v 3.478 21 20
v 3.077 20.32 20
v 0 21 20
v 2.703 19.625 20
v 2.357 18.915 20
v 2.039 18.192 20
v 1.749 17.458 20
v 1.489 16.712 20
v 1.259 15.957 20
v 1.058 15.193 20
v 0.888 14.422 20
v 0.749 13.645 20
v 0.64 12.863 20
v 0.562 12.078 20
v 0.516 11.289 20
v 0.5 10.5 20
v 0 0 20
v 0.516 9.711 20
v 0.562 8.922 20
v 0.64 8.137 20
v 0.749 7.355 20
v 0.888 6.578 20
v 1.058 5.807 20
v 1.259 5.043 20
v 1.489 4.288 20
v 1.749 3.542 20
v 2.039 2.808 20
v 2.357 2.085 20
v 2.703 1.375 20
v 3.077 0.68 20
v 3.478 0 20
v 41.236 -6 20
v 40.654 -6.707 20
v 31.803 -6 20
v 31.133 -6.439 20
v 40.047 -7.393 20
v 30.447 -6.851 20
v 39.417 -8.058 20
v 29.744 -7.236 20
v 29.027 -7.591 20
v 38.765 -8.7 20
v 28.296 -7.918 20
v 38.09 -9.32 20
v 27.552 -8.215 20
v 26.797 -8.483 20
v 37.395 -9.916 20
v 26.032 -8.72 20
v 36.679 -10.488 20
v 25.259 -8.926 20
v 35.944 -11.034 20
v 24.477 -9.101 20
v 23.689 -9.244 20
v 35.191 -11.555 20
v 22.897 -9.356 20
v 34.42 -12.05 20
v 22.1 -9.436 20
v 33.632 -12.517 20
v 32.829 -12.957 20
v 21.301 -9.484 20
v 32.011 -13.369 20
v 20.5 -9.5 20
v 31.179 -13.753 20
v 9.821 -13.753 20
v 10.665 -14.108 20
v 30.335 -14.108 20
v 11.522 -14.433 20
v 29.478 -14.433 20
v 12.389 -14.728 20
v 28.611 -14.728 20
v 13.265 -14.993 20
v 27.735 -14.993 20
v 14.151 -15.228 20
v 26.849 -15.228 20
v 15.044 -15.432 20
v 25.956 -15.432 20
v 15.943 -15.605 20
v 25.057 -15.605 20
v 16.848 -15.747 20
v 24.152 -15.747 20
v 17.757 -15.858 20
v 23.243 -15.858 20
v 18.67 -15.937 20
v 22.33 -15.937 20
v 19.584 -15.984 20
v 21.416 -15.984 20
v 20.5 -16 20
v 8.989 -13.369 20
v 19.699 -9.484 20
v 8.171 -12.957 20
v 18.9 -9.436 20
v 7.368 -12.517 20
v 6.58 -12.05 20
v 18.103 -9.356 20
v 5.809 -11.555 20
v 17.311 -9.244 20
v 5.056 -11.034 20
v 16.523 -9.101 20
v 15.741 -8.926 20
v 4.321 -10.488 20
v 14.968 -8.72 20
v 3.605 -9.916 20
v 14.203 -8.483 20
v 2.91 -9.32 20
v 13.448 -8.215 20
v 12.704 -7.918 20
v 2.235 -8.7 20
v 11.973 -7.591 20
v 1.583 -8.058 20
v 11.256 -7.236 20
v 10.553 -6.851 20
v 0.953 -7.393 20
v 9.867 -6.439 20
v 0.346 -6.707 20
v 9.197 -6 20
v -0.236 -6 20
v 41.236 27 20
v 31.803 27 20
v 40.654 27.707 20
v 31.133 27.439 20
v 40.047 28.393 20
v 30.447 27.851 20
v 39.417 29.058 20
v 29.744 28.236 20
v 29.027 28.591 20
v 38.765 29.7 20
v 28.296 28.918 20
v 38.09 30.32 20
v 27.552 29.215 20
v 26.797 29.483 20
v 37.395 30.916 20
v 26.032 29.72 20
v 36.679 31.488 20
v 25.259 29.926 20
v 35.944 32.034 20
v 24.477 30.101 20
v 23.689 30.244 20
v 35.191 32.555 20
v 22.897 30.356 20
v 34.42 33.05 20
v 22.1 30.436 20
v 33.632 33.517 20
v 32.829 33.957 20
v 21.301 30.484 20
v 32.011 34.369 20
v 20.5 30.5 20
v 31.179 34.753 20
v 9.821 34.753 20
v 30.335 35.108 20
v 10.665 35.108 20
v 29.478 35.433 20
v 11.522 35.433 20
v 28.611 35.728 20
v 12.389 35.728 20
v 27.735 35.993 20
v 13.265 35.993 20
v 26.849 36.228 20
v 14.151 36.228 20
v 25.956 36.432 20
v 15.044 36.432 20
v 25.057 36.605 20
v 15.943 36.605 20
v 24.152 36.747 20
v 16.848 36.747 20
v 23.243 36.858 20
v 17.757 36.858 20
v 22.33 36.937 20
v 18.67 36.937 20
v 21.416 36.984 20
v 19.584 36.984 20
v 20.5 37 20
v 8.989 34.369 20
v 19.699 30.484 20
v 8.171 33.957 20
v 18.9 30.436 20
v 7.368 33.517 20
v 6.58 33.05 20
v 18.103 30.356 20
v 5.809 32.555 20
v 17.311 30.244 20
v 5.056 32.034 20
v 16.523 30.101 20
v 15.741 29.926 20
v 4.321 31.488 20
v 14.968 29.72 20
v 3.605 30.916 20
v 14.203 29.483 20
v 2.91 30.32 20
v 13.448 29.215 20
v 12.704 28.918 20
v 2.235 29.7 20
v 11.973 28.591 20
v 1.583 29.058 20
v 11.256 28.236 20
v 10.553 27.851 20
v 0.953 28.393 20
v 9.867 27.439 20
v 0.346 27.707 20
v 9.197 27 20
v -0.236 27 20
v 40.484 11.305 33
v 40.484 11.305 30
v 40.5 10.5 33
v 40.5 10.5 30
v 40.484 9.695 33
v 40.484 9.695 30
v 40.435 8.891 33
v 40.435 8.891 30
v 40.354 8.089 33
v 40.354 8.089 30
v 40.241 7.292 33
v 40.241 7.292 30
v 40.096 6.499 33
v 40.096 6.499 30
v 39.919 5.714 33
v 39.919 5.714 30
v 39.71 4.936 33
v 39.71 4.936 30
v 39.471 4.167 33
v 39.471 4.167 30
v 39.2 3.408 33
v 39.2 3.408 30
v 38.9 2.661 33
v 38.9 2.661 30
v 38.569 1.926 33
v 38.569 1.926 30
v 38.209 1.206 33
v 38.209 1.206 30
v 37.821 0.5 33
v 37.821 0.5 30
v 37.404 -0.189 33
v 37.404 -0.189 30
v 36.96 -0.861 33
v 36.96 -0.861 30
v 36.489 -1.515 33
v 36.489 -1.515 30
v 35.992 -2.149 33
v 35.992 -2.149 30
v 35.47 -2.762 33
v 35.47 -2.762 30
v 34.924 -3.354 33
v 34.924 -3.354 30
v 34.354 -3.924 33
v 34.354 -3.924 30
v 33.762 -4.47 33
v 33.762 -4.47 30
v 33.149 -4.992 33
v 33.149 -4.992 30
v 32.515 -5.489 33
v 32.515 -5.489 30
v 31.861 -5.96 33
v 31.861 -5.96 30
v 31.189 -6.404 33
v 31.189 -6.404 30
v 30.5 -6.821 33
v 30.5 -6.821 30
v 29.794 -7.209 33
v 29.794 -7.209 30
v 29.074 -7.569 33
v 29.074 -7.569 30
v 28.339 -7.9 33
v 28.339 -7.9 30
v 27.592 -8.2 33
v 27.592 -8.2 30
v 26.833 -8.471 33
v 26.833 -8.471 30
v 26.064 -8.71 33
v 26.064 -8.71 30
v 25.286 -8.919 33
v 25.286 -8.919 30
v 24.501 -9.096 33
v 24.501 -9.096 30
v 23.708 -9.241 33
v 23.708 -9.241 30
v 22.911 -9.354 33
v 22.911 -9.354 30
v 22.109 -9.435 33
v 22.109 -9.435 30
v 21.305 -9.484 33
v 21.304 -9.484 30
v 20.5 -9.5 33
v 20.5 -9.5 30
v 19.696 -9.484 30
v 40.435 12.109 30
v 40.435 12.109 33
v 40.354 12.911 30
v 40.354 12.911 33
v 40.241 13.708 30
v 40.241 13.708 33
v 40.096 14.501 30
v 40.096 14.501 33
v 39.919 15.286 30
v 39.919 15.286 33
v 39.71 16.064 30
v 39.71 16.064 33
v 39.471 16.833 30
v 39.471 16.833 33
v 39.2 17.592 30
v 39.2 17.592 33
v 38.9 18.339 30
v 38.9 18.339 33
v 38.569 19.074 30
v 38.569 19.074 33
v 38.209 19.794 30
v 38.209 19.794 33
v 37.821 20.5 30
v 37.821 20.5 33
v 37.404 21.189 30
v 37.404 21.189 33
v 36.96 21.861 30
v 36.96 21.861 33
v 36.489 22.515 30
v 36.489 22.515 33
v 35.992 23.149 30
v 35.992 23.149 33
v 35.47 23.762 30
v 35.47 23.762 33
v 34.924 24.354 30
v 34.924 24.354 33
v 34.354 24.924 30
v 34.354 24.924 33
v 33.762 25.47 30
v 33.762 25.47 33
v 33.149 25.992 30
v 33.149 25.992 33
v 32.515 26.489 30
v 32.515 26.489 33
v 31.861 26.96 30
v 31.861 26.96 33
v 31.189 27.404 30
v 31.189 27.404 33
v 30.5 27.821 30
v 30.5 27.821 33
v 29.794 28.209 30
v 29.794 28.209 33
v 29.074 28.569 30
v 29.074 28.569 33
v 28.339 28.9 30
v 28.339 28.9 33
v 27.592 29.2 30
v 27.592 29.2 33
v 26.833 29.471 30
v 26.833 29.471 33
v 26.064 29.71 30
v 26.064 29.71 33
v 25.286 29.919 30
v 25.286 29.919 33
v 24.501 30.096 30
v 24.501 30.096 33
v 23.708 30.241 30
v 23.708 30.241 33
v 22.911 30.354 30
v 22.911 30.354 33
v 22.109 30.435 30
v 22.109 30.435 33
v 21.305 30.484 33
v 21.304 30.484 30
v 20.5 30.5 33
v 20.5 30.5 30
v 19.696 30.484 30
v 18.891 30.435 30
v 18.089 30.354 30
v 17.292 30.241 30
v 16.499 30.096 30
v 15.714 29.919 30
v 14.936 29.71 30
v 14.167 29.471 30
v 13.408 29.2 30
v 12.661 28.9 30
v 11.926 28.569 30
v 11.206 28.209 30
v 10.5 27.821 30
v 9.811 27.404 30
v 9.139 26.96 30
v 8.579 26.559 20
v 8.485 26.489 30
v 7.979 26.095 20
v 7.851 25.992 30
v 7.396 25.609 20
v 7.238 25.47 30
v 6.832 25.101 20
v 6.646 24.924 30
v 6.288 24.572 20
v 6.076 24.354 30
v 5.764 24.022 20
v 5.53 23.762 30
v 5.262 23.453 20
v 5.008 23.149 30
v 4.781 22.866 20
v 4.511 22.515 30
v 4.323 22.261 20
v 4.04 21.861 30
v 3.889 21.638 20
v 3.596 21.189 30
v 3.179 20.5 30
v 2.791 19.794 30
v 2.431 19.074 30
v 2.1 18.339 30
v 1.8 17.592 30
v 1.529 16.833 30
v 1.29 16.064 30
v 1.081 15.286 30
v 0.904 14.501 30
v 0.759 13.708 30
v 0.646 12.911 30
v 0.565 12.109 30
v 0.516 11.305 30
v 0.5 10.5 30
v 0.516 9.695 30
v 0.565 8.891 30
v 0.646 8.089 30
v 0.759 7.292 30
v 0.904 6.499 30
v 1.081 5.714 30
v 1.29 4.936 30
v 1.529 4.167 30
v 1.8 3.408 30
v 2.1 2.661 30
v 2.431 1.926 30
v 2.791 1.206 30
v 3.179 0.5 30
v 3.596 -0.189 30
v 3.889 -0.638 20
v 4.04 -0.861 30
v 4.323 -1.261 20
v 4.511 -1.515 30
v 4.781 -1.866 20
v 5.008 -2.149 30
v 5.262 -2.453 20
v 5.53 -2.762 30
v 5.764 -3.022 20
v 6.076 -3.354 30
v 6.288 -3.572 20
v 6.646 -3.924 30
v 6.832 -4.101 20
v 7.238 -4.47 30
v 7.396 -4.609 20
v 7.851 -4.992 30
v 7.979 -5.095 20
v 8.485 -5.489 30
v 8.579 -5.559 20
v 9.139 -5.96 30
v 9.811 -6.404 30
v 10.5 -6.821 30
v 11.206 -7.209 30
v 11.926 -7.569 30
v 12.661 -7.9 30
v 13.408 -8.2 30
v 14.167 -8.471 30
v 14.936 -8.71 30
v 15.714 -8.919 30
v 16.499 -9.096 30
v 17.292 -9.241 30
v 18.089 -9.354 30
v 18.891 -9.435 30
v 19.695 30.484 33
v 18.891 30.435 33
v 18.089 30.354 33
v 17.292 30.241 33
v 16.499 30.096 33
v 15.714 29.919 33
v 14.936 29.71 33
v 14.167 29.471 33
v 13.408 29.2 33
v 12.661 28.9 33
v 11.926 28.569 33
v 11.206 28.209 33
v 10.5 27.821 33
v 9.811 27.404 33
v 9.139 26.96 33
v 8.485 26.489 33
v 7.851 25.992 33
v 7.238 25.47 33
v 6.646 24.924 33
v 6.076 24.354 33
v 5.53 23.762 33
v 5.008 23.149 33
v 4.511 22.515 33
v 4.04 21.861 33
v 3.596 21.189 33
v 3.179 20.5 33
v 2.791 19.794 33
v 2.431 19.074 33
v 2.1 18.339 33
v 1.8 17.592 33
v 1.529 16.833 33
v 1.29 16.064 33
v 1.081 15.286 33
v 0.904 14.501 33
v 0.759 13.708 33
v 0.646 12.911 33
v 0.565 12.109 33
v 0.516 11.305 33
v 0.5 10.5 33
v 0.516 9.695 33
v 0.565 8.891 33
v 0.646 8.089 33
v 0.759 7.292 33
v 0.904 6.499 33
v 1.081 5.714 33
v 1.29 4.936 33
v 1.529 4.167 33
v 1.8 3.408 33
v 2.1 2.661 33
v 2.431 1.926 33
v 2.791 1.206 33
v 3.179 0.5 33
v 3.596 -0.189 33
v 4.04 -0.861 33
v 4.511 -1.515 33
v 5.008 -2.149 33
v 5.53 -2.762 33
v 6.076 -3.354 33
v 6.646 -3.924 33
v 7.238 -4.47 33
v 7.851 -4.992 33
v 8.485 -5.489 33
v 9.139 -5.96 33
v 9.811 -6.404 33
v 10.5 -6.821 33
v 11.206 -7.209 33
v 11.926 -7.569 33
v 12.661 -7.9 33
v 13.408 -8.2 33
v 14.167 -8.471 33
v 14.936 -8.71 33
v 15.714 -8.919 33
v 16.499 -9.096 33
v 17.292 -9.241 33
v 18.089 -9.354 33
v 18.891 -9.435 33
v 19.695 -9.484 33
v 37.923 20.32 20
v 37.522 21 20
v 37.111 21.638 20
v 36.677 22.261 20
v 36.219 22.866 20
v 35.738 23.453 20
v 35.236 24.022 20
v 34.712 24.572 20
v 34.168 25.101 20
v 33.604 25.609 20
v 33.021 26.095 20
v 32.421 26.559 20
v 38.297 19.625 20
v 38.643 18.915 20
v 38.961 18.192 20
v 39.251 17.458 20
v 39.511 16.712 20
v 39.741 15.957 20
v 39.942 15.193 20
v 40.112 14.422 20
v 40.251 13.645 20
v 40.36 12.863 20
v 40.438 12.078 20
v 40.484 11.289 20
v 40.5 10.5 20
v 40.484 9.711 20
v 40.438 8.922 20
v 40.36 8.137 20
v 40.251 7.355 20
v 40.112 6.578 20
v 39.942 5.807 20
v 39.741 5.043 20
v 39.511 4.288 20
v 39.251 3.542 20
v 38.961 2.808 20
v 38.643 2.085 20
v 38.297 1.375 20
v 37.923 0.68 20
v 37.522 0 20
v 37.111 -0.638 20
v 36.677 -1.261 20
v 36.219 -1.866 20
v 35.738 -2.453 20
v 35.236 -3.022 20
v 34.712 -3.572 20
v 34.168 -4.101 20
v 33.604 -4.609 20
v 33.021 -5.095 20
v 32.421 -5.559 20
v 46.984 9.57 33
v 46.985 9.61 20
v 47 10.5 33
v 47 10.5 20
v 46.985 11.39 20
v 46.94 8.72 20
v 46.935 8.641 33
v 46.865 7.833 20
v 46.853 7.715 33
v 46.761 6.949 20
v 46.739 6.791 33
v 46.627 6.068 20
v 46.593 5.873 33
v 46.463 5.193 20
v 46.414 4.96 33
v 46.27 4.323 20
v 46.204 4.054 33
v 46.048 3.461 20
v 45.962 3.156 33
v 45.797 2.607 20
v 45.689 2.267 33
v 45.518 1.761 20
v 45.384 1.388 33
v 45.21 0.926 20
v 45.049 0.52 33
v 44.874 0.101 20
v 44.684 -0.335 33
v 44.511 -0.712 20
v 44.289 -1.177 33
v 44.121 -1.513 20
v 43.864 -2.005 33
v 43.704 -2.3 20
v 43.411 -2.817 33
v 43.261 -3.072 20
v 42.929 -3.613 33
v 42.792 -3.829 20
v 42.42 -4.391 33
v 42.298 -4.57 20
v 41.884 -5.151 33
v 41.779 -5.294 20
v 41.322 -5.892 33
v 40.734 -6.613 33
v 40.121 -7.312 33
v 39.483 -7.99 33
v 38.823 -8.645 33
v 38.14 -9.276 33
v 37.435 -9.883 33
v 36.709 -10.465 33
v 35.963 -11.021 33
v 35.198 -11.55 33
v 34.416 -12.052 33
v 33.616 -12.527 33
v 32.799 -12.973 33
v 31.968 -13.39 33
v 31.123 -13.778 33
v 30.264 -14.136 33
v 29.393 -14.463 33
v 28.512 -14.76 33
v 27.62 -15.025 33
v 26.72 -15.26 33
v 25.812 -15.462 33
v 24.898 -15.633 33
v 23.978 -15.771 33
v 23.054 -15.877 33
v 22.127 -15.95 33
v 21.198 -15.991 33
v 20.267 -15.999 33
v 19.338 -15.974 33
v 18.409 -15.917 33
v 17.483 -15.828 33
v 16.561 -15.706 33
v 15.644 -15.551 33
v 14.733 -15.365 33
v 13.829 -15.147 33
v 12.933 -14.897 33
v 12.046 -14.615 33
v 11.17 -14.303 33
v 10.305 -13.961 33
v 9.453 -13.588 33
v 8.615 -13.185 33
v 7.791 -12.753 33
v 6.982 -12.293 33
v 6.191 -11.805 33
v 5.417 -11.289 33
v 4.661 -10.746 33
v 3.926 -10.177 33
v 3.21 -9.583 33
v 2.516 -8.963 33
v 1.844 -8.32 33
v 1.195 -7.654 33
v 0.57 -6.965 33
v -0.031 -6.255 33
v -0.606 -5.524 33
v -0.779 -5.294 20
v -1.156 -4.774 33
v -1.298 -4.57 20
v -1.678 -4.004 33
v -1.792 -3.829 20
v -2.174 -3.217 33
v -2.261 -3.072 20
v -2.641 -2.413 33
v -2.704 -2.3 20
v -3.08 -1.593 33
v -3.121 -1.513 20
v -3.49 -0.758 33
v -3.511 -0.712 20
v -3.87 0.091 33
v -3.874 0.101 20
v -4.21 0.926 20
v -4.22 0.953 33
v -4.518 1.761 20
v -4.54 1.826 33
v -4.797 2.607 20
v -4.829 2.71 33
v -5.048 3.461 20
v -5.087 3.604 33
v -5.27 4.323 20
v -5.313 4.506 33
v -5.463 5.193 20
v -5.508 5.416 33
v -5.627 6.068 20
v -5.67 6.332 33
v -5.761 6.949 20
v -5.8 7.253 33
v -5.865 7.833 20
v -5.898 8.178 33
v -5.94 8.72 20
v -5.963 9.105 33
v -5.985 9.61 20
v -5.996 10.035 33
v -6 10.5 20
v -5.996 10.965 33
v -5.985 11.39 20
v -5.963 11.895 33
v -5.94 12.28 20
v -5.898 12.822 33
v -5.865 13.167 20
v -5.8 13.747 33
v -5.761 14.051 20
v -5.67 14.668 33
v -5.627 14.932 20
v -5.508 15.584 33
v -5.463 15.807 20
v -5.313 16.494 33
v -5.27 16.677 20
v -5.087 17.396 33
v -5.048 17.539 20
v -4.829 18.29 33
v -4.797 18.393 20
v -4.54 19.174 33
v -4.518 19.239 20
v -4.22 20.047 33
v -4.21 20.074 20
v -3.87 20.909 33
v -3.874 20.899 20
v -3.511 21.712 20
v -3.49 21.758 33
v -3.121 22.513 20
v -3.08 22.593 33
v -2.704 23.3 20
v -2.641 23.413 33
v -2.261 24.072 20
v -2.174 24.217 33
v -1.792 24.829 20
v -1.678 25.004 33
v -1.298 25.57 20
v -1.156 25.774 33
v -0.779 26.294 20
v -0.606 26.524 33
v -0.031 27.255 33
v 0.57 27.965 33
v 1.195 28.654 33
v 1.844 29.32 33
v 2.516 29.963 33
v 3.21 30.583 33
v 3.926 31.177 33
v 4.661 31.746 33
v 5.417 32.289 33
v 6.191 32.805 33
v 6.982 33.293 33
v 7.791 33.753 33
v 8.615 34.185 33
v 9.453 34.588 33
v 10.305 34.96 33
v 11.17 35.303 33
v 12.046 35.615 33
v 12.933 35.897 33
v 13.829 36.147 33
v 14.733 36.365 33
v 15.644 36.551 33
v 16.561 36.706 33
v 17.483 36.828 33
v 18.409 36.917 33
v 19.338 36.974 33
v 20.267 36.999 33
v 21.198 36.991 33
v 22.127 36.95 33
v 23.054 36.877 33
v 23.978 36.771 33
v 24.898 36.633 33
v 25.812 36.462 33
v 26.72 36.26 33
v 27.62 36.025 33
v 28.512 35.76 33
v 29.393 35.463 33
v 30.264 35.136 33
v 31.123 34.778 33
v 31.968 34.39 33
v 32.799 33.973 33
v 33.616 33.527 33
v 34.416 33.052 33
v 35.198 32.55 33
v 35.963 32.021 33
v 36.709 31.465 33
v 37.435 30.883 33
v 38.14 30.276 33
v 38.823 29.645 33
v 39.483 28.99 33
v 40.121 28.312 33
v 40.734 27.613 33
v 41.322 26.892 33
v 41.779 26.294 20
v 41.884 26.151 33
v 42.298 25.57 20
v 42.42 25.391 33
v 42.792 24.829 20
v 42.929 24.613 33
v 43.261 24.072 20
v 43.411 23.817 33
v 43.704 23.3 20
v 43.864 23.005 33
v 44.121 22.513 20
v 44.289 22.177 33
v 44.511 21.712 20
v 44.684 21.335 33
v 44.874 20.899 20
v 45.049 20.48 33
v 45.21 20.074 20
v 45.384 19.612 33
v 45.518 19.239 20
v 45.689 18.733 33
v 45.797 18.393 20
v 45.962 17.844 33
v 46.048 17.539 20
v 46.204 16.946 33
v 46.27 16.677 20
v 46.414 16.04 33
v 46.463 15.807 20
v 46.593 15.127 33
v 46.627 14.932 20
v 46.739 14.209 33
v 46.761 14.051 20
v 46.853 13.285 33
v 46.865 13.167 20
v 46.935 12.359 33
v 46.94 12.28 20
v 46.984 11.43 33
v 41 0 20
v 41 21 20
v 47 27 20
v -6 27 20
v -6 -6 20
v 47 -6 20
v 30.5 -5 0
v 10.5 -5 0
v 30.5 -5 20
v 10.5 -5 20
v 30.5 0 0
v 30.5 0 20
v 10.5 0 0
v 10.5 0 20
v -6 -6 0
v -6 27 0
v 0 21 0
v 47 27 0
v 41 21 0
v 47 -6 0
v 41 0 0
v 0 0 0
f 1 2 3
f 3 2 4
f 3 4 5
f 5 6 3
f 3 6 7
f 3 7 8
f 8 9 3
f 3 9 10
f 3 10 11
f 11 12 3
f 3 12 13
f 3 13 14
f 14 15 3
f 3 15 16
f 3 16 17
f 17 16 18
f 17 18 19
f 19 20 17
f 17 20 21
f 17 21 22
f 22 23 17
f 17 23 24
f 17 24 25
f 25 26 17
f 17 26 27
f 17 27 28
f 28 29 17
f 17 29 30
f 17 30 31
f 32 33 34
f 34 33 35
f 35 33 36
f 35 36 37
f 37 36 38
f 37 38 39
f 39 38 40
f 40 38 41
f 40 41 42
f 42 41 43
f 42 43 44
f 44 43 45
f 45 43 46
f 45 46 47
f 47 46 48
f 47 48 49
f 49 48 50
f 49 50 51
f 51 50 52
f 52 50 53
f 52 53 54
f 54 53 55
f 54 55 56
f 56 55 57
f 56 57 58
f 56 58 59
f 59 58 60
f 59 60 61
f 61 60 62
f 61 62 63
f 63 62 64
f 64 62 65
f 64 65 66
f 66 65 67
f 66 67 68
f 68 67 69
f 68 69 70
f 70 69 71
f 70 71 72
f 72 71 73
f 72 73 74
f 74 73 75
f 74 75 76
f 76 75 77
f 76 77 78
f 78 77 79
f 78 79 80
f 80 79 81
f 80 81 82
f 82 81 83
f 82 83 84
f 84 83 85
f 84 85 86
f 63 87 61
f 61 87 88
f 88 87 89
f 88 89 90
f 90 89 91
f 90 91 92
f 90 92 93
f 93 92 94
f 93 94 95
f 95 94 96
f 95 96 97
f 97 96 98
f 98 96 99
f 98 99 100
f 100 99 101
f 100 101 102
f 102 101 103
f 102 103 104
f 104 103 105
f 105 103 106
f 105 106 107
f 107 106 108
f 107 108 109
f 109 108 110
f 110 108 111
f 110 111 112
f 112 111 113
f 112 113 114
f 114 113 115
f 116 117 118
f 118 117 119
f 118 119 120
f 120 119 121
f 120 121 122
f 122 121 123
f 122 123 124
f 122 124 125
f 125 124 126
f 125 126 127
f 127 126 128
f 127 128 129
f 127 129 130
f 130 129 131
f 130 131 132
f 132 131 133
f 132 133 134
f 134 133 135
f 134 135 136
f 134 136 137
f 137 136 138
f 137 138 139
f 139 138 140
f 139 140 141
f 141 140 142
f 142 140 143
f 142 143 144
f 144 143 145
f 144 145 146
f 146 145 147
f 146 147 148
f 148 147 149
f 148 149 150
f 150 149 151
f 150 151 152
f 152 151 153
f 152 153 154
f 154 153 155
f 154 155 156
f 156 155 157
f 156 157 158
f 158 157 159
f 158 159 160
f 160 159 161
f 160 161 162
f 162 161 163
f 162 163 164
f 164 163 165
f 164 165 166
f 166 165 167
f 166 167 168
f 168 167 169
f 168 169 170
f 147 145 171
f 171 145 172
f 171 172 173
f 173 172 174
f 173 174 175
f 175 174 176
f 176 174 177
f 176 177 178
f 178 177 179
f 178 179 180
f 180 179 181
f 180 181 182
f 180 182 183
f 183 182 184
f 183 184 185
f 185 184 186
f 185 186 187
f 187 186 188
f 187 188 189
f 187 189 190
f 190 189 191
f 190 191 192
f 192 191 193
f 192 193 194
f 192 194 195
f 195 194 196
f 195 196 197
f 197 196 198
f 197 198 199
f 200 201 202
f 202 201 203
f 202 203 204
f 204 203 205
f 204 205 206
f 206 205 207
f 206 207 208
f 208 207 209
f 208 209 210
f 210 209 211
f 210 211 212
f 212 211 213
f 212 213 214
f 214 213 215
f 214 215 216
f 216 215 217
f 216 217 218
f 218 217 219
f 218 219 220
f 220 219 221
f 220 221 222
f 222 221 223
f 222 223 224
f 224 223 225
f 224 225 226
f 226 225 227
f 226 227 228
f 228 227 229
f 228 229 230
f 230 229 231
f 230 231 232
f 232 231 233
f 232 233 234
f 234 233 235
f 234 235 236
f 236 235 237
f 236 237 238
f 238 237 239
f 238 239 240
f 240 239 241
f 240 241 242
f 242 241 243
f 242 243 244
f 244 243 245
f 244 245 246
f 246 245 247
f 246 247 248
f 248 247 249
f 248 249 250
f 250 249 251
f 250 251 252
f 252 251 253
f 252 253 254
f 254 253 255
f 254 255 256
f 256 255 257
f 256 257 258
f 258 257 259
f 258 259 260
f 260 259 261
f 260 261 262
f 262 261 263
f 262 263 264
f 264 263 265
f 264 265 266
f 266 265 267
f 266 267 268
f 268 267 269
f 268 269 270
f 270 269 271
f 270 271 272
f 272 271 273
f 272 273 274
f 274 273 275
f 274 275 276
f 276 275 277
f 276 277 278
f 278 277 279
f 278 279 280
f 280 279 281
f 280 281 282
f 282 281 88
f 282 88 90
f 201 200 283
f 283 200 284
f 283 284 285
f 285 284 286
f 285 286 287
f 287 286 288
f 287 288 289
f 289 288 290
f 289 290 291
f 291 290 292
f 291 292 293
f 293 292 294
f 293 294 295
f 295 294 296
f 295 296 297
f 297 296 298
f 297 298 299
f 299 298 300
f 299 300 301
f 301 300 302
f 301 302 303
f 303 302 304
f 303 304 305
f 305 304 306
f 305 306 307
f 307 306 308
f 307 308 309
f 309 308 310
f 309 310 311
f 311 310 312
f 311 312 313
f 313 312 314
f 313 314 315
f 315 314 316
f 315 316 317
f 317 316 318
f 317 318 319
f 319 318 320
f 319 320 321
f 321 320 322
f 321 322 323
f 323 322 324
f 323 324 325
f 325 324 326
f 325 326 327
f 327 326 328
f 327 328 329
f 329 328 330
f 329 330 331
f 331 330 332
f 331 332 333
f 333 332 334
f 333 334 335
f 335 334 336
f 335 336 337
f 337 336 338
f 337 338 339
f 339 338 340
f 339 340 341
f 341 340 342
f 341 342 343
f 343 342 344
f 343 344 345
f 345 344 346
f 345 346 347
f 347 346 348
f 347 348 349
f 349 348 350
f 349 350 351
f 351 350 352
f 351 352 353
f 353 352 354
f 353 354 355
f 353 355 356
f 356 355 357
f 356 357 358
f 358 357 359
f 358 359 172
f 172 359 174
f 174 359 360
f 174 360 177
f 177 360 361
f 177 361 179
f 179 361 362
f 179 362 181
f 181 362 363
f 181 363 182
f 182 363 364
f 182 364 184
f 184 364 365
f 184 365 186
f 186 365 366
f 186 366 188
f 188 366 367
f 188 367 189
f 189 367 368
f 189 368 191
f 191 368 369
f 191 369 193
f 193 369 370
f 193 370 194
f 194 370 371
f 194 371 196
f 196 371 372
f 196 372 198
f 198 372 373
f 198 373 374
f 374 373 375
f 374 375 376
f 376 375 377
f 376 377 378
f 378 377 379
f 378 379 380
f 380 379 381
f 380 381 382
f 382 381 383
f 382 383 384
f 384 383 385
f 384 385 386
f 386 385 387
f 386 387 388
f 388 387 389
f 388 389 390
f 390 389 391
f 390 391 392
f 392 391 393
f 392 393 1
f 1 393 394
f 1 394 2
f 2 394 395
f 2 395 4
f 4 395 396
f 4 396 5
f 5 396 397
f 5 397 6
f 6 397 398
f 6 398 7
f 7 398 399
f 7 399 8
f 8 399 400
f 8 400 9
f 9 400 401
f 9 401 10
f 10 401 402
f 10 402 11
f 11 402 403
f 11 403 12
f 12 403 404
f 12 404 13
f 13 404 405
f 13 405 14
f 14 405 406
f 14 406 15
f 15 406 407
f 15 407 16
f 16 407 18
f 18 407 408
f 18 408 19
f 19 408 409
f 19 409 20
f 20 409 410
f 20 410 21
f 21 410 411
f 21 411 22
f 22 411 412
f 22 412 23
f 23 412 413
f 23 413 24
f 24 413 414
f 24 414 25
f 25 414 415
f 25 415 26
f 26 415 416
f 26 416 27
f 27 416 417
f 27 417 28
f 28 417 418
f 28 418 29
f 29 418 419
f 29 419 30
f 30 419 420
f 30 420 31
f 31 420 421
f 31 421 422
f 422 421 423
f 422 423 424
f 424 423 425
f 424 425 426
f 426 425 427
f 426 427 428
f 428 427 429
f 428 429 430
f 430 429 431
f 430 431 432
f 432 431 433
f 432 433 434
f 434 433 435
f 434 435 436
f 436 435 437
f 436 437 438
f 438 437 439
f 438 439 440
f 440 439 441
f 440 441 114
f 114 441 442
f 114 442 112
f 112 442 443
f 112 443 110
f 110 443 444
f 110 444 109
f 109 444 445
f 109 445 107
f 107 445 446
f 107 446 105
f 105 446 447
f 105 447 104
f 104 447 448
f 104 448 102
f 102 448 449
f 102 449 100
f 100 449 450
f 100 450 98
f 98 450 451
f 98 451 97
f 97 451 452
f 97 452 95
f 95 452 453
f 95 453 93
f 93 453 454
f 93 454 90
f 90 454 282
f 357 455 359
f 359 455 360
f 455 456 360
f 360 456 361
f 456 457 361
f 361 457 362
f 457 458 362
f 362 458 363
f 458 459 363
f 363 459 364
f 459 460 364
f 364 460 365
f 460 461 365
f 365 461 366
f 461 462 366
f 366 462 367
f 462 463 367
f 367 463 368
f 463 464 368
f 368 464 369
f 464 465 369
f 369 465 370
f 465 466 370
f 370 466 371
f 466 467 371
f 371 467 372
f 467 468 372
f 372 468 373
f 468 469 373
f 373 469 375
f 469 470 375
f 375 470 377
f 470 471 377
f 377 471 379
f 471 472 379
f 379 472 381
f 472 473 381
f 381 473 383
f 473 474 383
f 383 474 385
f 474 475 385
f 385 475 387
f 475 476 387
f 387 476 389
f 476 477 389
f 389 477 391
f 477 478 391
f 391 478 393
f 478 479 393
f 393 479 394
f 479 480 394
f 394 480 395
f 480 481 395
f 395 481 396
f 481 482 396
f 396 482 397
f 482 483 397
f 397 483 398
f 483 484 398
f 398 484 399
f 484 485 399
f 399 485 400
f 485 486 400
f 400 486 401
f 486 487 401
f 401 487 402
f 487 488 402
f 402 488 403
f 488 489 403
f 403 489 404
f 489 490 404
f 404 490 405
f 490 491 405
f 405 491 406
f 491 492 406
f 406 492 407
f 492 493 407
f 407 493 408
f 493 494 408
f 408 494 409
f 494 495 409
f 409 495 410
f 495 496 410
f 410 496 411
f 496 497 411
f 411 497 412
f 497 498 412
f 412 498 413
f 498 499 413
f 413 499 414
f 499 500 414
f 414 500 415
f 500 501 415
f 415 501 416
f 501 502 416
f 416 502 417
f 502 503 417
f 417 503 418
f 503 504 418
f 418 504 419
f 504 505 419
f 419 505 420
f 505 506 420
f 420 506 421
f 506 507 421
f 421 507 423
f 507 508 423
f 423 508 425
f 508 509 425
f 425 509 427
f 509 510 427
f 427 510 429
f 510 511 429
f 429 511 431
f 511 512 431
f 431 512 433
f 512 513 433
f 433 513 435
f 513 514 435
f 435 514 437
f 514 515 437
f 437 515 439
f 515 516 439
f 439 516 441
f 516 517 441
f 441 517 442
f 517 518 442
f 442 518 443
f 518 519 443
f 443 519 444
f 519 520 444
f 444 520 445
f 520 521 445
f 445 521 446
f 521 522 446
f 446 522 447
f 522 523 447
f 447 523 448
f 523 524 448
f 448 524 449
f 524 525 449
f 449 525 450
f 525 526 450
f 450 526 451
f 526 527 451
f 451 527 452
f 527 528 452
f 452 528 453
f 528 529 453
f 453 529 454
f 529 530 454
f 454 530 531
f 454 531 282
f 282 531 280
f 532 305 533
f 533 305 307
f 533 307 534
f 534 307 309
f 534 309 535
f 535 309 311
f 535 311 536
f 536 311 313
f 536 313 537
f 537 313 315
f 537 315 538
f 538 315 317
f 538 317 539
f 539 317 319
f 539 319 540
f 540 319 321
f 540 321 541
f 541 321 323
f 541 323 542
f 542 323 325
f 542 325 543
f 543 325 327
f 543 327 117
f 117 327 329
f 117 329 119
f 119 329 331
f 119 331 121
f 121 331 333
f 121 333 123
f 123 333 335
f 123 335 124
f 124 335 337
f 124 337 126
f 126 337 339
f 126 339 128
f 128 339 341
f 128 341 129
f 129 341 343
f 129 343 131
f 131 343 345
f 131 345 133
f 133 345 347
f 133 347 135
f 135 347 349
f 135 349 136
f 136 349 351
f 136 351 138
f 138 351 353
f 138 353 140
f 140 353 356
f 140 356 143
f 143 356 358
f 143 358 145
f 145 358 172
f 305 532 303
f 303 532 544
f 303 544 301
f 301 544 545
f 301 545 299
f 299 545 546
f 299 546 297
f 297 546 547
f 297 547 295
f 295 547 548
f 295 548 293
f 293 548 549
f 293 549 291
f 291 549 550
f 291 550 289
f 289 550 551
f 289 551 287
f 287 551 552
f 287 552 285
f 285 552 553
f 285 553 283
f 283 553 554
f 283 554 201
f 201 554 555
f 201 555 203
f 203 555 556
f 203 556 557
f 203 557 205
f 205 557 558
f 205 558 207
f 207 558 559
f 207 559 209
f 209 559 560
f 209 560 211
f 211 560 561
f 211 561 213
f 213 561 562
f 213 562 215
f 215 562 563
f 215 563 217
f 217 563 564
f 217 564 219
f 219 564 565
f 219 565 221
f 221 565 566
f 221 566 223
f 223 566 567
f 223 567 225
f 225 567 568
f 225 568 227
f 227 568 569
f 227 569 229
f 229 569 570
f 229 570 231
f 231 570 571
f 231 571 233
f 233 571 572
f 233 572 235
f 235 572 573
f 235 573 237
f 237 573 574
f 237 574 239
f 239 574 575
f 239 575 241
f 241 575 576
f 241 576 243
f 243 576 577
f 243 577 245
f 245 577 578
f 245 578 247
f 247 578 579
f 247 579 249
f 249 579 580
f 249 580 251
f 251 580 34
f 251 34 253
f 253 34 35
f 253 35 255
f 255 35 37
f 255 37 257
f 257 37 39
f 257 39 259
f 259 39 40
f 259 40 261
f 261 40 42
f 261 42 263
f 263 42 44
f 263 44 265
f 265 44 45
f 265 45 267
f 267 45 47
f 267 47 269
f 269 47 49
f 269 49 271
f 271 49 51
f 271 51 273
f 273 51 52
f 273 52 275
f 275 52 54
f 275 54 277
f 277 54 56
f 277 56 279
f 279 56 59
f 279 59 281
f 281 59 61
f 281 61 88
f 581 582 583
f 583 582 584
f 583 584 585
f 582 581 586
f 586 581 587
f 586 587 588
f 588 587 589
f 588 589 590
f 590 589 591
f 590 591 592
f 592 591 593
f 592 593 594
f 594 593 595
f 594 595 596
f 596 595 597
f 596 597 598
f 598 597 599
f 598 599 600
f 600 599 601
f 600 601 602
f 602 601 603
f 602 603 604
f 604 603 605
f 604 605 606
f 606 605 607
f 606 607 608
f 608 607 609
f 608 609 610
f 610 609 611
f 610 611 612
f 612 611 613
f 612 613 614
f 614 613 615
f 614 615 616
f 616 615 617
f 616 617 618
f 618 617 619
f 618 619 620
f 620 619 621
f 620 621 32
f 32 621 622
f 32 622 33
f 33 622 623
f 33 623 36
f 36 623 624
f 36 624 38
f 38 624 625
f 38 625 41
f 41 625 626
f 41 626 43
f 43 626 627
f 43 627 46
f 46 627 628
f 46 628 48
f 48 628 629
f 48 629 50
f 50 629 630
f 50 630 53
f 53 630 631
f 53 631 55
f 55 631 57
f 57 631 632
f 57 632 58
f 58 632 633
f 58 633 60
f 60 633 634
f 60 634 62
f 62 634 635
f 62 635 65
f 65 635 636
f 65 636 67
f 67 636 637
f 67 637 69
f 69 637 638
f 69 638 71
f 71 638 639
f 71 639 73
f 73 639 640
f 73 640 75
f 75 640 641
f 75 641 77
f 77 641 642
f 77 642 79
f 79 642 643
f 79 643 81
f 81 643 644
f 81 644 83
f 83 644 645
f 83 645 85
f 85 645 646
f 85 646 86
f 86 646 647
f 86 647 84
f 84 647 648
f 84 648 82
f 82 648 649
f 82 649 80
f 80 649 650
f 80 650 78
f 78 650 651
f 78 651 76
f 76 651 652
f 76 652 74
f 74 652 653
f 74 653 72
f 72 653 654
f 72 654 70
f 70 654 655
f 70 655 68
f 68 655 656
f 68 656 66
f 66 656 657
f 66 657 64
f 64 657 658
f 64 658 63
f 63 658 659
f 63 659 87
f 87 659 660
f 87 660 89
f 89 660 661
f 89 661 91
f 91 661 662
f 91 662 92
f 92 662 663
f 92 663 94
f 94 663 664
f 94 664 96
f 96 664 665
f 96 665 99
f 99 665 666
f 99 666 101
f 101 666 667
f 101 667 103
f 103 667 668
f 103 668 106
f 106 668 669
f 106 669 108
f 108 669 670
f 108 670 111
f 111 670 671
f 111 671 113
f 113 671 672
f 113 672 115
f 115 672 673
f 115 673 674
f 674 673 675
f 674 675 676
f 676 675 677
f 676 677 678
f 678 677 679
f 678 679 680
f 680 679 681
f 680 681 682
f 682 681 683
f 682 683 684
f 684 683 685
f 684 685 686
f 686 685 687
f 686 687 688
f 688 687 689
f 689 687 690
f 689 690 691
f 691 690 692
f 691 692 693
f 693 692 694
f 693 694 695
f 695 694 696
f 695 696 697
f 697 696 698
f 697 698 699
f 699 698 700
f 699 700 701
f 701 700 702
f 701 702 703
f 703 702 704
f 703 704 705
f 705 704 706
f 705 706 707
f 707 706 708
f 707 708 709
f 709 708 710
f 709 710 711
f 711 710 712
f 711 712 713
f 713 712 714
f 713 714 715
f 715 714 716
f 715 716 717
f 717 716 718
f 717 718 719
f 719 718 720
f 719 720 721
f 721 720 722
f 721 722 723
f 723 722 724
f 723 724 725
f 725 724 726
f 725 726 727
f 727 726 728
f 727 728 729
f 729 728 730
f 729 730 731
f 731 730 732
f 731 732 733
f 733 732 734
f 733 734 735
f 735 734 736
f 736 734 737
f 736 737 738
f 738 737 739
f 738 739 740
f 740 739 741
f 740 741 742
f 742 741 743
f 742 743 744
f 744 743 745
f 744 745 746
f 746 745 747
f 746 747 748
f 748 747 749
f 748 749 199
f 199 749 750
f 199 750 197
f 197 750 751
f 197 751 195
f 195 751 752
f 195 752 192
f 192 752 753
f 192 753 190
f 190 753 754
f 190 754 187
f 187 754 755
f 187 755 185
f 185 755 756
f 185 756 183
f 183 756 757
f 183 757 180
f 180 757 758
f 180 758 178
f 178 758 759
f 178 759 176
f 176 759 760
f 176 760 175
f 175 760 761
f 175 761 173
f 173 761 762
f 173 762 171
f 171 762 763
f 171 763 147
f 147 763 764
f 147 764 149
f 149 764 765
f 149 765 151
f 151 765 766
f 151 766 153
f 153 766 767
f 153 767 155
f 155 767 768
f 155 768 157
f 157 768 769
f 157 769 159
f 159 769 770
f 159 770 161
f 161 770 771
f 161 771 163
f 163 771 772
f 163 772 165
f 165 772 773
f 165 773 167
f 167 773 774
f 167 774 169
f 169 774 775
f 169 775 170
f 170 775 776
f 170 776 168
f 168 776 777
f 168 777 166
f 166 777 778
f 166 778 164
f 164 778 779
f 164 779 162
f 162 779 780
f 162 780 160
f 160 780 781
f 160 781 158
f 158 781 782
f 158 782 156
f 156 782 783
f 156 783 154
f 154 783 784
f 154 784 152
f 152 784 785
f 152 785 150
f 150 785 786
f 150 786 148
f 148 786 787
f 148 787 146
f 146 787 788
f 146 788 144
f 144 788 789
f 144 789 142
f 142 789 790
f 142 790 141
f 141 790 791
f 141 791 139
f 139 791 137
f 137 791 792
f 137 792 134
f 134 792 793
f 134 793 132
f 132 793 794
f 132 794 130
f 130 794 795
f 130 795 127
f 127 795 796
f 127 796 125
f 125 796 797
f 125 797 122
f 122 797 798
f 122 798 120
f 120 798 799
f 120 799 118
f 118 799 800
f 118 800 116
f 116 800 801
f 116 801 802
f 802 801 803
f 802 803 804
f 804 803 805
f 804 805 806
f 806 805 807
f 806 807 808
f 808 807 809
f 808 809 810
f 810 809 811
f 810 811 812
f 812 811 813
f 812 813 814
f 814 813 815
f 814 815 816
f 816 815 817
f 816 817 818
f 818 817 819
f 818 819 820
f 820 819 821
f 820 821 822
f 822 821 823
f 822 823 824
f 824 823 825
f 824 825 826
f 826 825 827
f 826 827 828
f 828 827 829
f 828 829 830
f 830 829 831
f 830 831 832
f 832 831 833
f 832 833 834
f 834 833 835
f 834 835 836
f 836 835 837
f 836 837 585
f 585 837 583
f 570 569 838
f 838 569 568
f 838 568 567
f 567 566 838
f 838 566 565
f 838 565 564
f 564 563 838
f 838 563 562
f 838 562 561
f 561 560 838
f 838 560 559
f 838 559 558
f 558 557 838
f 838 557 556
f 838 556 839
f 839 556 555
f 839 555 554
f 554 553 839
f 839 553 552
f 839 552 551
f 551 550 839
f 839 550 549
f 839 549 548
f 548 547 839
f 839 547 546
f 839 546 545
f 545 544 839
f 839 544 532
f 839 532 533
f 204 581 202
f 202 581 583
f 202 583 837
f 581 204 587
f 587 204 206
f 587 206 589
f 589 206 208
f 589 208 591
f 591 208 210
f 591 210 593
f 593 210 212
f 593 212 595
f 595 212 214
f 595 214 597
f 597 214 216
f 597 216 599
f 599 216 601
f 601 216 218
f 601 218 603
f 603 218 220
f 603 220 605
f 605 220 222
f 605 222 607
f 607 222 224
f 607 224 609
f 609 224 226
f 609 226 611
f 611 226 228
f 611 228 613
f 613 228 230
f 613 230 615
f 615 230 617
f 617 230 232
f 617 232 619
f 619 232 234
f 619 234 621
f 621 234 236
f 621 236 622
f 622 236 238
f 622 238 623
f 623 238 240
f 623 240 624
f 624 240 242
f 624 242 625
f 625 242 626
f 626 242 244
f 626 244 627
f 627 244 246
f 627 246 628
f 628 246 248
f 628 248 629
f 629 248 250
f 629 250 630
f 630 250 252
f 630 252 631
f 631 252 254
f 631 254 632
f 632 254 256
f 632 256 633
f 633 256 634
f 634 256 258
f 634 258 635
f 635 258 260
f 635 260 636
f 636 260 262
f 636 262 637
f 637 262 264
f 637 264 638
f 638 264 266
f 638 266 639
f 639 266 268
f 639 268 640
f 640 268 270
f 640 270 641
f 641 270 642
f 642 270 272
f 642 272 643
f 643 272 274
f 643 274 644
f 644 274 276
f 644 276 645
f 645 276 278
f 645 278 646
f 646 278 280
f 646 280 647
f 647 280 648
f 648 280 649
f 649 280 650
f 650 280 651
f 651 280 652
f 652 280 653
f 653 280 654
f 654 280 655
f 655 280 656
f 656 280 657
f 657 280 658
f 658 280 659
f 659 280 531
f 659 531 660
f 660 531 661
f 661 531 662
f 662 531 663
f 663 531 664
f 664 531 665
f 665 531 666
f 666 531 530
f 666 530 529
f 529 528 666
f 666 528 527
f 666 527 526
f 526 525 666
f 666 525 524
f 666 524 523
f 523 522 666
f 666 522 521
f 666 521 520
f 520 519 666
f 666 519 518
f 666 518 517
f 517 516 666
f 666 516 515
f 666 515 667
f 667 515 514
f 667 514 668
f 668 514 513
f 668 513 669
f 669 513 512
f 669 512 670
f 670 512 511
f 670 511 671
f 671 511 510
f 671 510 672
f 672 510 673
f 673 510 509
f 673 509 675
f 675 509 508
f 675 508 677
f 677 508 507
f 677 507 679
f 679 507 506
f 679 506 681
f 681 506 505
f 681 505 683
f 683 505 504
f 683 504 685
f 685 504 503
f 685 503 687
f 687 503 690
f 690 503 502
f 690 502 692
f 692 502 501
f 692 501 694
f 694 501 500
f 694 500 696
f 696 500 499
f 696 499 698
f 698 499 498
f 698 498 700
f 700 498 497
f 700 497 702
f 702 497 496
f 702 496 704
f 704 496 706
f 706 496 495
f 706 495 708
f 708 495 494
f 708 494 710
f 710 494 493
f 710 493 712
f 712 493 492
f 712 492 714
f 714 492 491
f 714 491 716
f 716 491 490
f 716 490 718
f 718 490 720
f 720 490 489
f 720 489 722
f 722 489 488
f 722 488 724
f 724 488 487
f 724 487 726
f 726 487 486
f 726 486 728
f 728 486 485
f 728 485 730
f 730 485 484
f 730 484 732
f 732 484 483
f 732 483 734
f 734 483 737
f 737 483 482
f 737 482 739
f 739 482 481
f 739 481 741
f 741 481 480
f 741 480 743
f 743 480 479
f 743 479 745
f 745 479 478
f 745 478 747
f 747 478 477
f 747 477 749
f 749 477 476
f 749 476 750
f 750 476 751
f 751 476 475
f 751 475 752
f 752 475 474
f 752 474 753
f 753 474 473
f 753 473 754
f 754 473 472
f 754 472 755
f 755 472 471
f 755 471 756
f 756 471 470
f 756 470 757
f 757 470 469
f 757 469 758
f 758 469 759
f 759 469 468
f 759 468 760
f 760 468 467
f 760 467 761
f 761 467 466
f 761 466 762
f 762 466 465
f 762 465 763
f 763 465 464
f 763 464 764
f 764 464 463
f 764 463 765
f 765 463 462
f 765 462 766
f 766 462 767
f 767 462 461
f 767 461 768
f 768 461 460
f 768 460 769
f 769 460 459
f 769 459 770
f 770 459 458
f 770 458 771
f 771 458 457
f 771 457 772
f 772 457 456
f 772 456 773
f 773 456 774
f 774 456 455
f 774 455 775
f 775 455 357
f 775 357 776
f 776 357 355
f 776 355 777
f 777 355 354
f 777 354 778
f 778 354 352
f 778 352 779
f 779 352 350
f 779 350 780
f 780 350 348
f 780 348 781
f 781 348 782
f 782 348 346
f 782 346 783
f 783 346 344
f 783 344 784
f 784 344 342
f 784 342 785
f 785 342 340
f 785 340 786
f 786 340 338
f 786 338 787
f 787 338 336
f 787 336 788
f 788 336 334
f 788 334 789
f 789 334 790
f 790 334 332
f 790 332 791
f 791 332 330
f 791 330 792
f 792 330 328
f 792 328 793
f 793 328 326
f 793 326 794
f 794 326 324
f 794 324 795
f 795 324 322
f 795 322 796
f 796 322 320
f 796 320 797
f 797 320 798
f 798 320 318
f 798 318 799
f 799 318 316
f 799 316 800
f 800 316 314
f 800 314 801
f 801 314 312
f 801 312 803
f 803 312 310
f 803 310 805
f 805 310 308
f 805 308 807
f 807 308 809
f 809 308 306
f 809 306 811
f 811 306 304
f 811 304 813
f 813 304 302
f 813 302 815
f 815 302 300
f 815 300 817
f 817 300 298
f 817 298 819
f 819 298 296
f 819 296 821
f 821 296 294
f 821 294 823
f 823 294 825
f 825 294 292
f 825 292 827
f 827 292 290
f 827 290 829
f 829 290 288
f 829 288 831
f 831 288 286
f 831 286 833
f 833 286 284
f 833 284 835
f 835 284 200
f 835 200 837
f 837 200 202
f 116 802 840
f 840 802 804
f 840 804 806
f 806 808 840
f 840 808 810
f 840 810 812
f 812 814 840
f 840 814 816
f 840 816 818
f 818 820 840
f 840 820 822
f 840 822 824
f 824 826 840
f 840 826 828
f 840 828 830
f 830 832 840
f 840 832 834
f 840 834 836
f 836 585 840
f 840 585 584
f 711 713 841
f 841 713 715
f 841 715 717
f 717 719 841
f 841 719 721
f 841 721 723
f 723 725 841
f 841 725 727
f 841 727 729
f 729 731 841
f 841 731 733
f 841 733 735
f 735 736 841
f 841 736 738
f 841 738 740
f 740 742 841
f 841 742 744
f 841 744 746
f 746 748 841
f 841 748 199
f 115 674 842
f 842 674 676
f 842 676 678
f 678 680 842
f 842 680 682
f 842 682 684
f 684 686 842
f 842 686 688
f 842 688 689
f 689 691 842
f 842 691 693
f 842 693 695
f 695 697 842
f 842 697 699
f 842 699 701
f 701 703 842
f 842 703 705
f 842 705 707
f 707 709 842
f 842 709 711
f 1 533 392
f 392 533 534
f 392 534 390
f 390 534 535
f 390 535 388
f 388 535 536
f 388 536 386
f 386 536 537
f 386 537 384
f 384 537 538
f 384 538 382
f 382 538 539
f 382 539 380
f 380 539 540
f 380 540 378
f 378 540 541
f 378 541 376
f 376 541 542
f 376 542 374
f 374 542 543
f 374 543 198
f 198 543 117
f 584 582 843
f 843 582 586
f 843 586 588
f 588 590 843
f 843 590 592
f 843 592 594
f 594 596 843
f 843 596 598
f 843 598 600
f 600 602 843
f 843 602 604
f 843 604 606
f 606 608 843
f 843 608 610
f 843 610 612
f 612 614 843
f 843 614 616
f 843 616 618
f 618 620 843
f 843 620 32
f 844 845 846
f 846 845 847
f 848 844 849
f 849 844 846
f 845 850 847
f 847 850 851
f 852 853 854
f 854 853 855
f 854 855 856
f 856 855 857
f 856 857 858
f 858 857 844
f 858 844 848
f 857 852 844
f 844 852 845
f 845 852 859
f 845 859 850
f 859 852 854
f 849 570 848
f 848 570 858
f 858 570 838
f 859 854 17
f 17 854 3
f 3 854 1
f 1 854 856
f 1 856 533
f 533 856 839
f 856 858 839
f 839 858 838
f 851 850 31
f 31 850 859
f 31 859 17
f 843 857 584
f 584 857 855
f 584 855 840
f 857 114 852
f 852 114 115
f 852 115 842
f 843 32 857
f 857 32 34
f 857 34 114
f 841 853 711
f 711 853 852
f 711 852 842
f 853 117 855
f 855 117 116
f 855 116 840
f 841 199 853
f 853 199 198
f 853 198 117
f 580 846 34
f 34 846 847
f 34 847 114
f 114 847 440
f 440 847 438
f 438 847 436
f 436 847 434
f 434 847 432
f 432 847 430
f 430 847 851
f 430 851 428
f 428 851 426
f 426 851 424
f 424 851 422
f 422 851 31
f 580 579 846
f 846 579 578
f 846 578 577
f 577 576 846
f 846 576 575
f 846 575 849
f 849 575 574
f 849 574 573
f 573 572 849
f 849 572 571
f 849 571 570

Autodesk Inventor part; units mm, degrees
ref_plane "YZ Plane" through (0, 0, 0) normal (1, 0, 0) x (0, 1, 0)
ref_plane "XZ Plane" through (0, 0, 0) normal (0, 1, 0) x (-1, 0, 0)
ref_plane "XY Plane" through (0, 0, 0) normal (0, 0, 1) x (1, 0, 0)
sketch "Sketch8" plane through (0, 0, 0) normal (0, 0, 1) x (1, 0, 0)
  line L0 (0, 0) -> (41, 0)
  line L1 (41, 0) -> (41, 21)
  line L2 (41, 21) -> (0, 21)
  line L3 (0, 21) -> (0, 0)
  line L4 (-6, 27) -> (47, 27)
  line L5 (47, 27) -> (47, -6)
  line L6 (47, -6) -> (-6, -6)
  line L7 (-6, -6) -> (-6, 27)
  dimension "d35" = 41
  dimension "d36" = 21
  dimension "d37" = 6
extrude "Extrusion8" add sketch "Sketch8" along normal blind 20
sketch "Sketch9" plane through (0, 0, 20) normal (0, 0, 1) x (1, 0, 0)
  line L0 (41, 0) -> (0, 0) projected
  line L1 (20.5, 0) -> (10.5, 0)
  line L2 (10.5, 0) -> (10.5, -5)
  line L3 (10.5, -5) -> (30.5, -5)
  line L4 (30.5, -5) -> (30.5, 0)
  line L5 (30.5, 0) -> (20.5, 0)
  dimension "d45" = 10
  dimension "d46" = 5
  dimension "d47" = 20
  dimension "d48" = 5
extrude "Extrusion9" cut sketch "Sketch9" against normal up to next
sketch "Sketch10" plane through (0, 0, 20) normal (0, 0, 1) x (1, 0, 0)
  line L0 (0, 21) -> (0, 0) projected
  line L1 (0, 10.5) -> (41, 10.5)
  line L2 (41, 21) -> (41, 0) projected
  circle A0 centre (20.5, 10.5) radius 20
  circle A1 centre (20.5, 10.5) radius 26.5
  line L3 (47, 27) -> (47, -6) projected
  dimension "d51" = 40
extrude "Extrusion10" add sketch "Sketch10" along normal blind 13
equation "\"BendRadius\" = Thickness"
equation "\"BendReliefWidth\" = Thickness"
equation "\"BendReliefDepth\" = 0.5 * Thickness"
equation "\"CornerReliefSize\" = 4 * Thickness"
equation "\"MinimumRemnant\" = 2 * Thickness"
equation "\"TransitionRadius\" = BendRadius"
equation "\"JacobiRadiusSize\" = BendRadius"
equation "\"GapSize\" = Thickness"
equation "\"Thickness\" = 0.5"
properties part number "baseRotor1"
